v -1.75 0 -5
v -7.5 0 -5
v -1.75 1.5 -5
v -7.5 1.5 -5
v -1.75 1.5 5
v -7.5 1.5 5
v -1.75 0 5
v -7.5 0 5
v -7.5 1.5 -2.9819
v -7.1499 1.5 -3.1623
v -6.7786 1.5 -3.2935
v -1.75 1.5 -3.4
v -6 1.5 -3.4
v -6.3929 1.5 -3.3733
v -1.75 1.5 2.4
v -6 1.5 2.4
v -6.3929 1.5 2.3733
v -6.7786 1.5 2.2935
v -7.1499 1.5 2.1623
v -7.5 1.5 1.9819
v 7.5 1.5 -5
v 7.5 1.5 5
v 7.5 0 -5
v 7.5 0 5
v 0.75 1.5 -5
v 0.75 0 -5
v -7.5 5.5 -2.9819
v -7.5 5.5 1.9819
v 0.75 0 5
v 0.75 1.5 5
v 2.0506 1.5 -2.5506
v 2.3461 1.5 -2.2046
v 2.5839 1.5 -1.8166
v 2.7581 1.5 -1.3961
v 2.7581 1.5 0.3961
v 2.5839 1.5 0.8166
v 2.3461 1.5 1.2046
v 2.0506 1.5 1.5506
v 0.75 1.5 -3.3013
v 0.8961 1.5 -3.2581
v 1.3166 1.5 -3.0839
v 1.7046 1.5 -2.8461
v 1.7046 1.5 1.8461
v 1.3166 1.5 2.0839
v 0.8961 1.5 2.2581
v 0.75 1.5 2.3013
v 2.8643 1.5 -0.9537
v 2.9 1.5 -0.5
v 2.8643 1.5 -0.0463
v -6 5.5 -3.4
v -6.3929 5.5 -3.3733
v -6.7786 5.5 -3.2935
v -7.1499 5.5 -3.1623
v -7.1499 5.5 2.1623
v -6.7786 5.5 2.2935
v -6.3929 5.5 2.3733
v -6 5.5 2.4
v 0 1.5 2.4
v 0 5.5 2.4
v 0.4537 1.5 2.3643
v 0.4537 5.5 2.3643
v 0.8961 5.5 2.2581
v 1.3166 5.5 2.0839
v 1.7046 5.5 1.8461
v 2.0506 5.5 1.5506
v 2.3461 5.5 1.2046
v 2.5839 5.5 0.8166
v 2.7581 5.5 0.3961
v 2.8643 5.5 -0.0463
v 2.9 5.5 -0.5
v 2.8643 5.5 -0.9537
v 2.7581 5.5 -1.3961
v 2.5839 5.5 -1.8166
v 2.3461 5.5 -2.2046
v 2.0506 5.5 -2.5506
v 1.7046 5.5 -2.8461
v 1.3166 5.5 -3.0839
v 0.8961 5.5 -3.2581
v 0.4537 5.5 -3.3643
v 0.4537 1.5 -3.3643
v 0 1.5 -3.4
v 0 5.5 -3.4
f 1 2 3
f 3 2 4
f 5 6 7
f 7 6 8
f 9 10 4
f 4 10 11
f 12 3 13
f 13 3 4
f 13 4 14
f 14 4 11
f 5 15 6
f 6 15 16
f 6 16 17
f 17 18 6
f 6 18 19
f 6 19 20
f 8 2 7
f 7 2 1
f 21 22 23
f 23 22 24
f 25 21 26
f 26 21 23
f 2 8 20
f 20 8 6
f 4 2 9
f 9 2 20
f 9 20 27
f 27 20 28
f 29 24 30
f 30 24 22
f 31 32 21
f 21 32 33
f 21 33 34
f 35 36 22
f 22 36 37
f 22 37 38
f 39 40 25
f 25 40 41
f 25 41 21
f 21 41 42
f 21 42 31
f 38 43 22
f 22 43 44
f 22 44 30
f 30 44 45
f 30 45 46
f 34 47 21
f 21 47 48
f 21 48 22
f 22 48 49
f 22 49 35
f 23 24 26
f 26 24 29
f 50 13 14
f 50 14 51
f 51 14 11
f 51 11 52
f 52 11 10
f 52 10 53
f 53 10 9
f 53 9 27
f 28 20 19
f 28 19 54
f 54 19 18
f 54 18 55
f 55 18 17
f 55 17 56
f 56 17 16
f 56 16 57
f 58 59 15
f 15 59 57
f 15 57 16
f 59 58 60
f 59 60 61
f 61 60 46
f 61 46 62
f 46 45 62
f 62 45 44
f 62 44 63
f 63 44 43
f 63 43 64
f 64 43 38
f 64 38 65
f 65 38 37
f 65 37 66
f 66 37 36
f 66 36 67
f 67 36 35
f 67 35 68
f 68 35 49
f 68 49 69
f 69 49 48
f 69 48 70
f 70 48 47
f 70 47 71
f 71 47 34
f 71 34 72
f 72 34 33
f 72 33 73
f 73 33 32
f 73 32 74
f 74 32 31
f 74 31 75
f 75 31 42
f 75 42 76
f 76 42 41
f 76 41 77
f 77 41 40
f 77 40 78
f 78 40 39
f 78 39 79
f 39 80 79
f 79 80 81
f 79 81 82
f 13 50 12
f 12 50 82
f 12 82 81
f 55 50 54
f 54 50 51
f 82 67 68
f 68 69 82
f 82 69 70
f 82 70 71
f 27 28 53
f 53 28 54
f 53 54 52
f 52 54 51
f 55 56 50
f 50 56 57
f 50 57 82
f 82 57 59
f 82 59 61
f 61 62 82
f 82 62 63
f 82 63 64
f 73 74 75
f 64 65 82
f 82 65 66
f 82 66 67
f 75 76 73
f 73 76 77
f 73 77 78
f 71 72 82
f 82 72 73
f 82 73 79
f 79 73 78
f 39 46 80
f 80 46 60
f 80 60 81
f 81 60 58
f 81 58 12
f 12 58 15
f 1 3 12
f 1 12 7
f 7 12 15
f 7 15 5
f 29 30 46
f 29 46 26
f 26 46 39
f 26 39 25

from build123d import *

# Parameters (mm, degrees)
SKETCH1_W           = 15
SKETCH1_H           = 10
BOSS_EXTRUDE1_DEPTH = 1.5
BOSS_EXTRUDE2_DEPTH = 4
SKETCH3_W           = 2.5
SKETCH3_H           = 10
CUT_EXTRUDE1_DEPTH  = 1.5


with BuildPart() as part:
    # Sketch1 → Boss-Extrude1 (new body)
    with BuildSketch(Plane(origin=(0, 0, 0), x_dir=(1, 0, 0), z_dir=(0, 1, 0))):
        Rectangle(SKETCH1_W, SKETCH1_H)
    extrude(amount=BOSS_EXTRUDE1_DEPTH)

    # Sketch2 → Boss-Extrude2 (add)
    with BuildSketch(Plane(origin=(0, 1.5, 0), x_dir=(1, 0, 0), z_dir=(0, 1, 0))):
        with BuildLine():
            Line((-6, 3.4), (0, 3.4))
            ThreePointArc((0, 3.4), (2.9, 0.5), (0, -2.4))
            Line((0, -2.4), (-6, -2.4))
            ThreePointArc((-6, -2.4), (-6.778585026, -2.293529194), (-7.5, -1.981934729))
            Line((-7.5, -1.981934729), (-7.5, 2.981934729))
            ThreePointArc((-7.5, 2.981934729), (-6.778585026, 3.293529194), (-6, 3.4))
        make_face()
    extrude(amount=BOSS_EXTRUDE2_DEPTH)

    # Sketch3 → Cut-Extrude1 (cut)
    with BuildSketch(Plane.XZ):
        with Locations((-0.5, 0)):
            Rectangle(SKETCH3_W, SKETCH3_H)
    extrude(amount=-CUT_EXTRUDE1_DEPTH, mode=Mode.SUBTRACT)


solid = part.part
